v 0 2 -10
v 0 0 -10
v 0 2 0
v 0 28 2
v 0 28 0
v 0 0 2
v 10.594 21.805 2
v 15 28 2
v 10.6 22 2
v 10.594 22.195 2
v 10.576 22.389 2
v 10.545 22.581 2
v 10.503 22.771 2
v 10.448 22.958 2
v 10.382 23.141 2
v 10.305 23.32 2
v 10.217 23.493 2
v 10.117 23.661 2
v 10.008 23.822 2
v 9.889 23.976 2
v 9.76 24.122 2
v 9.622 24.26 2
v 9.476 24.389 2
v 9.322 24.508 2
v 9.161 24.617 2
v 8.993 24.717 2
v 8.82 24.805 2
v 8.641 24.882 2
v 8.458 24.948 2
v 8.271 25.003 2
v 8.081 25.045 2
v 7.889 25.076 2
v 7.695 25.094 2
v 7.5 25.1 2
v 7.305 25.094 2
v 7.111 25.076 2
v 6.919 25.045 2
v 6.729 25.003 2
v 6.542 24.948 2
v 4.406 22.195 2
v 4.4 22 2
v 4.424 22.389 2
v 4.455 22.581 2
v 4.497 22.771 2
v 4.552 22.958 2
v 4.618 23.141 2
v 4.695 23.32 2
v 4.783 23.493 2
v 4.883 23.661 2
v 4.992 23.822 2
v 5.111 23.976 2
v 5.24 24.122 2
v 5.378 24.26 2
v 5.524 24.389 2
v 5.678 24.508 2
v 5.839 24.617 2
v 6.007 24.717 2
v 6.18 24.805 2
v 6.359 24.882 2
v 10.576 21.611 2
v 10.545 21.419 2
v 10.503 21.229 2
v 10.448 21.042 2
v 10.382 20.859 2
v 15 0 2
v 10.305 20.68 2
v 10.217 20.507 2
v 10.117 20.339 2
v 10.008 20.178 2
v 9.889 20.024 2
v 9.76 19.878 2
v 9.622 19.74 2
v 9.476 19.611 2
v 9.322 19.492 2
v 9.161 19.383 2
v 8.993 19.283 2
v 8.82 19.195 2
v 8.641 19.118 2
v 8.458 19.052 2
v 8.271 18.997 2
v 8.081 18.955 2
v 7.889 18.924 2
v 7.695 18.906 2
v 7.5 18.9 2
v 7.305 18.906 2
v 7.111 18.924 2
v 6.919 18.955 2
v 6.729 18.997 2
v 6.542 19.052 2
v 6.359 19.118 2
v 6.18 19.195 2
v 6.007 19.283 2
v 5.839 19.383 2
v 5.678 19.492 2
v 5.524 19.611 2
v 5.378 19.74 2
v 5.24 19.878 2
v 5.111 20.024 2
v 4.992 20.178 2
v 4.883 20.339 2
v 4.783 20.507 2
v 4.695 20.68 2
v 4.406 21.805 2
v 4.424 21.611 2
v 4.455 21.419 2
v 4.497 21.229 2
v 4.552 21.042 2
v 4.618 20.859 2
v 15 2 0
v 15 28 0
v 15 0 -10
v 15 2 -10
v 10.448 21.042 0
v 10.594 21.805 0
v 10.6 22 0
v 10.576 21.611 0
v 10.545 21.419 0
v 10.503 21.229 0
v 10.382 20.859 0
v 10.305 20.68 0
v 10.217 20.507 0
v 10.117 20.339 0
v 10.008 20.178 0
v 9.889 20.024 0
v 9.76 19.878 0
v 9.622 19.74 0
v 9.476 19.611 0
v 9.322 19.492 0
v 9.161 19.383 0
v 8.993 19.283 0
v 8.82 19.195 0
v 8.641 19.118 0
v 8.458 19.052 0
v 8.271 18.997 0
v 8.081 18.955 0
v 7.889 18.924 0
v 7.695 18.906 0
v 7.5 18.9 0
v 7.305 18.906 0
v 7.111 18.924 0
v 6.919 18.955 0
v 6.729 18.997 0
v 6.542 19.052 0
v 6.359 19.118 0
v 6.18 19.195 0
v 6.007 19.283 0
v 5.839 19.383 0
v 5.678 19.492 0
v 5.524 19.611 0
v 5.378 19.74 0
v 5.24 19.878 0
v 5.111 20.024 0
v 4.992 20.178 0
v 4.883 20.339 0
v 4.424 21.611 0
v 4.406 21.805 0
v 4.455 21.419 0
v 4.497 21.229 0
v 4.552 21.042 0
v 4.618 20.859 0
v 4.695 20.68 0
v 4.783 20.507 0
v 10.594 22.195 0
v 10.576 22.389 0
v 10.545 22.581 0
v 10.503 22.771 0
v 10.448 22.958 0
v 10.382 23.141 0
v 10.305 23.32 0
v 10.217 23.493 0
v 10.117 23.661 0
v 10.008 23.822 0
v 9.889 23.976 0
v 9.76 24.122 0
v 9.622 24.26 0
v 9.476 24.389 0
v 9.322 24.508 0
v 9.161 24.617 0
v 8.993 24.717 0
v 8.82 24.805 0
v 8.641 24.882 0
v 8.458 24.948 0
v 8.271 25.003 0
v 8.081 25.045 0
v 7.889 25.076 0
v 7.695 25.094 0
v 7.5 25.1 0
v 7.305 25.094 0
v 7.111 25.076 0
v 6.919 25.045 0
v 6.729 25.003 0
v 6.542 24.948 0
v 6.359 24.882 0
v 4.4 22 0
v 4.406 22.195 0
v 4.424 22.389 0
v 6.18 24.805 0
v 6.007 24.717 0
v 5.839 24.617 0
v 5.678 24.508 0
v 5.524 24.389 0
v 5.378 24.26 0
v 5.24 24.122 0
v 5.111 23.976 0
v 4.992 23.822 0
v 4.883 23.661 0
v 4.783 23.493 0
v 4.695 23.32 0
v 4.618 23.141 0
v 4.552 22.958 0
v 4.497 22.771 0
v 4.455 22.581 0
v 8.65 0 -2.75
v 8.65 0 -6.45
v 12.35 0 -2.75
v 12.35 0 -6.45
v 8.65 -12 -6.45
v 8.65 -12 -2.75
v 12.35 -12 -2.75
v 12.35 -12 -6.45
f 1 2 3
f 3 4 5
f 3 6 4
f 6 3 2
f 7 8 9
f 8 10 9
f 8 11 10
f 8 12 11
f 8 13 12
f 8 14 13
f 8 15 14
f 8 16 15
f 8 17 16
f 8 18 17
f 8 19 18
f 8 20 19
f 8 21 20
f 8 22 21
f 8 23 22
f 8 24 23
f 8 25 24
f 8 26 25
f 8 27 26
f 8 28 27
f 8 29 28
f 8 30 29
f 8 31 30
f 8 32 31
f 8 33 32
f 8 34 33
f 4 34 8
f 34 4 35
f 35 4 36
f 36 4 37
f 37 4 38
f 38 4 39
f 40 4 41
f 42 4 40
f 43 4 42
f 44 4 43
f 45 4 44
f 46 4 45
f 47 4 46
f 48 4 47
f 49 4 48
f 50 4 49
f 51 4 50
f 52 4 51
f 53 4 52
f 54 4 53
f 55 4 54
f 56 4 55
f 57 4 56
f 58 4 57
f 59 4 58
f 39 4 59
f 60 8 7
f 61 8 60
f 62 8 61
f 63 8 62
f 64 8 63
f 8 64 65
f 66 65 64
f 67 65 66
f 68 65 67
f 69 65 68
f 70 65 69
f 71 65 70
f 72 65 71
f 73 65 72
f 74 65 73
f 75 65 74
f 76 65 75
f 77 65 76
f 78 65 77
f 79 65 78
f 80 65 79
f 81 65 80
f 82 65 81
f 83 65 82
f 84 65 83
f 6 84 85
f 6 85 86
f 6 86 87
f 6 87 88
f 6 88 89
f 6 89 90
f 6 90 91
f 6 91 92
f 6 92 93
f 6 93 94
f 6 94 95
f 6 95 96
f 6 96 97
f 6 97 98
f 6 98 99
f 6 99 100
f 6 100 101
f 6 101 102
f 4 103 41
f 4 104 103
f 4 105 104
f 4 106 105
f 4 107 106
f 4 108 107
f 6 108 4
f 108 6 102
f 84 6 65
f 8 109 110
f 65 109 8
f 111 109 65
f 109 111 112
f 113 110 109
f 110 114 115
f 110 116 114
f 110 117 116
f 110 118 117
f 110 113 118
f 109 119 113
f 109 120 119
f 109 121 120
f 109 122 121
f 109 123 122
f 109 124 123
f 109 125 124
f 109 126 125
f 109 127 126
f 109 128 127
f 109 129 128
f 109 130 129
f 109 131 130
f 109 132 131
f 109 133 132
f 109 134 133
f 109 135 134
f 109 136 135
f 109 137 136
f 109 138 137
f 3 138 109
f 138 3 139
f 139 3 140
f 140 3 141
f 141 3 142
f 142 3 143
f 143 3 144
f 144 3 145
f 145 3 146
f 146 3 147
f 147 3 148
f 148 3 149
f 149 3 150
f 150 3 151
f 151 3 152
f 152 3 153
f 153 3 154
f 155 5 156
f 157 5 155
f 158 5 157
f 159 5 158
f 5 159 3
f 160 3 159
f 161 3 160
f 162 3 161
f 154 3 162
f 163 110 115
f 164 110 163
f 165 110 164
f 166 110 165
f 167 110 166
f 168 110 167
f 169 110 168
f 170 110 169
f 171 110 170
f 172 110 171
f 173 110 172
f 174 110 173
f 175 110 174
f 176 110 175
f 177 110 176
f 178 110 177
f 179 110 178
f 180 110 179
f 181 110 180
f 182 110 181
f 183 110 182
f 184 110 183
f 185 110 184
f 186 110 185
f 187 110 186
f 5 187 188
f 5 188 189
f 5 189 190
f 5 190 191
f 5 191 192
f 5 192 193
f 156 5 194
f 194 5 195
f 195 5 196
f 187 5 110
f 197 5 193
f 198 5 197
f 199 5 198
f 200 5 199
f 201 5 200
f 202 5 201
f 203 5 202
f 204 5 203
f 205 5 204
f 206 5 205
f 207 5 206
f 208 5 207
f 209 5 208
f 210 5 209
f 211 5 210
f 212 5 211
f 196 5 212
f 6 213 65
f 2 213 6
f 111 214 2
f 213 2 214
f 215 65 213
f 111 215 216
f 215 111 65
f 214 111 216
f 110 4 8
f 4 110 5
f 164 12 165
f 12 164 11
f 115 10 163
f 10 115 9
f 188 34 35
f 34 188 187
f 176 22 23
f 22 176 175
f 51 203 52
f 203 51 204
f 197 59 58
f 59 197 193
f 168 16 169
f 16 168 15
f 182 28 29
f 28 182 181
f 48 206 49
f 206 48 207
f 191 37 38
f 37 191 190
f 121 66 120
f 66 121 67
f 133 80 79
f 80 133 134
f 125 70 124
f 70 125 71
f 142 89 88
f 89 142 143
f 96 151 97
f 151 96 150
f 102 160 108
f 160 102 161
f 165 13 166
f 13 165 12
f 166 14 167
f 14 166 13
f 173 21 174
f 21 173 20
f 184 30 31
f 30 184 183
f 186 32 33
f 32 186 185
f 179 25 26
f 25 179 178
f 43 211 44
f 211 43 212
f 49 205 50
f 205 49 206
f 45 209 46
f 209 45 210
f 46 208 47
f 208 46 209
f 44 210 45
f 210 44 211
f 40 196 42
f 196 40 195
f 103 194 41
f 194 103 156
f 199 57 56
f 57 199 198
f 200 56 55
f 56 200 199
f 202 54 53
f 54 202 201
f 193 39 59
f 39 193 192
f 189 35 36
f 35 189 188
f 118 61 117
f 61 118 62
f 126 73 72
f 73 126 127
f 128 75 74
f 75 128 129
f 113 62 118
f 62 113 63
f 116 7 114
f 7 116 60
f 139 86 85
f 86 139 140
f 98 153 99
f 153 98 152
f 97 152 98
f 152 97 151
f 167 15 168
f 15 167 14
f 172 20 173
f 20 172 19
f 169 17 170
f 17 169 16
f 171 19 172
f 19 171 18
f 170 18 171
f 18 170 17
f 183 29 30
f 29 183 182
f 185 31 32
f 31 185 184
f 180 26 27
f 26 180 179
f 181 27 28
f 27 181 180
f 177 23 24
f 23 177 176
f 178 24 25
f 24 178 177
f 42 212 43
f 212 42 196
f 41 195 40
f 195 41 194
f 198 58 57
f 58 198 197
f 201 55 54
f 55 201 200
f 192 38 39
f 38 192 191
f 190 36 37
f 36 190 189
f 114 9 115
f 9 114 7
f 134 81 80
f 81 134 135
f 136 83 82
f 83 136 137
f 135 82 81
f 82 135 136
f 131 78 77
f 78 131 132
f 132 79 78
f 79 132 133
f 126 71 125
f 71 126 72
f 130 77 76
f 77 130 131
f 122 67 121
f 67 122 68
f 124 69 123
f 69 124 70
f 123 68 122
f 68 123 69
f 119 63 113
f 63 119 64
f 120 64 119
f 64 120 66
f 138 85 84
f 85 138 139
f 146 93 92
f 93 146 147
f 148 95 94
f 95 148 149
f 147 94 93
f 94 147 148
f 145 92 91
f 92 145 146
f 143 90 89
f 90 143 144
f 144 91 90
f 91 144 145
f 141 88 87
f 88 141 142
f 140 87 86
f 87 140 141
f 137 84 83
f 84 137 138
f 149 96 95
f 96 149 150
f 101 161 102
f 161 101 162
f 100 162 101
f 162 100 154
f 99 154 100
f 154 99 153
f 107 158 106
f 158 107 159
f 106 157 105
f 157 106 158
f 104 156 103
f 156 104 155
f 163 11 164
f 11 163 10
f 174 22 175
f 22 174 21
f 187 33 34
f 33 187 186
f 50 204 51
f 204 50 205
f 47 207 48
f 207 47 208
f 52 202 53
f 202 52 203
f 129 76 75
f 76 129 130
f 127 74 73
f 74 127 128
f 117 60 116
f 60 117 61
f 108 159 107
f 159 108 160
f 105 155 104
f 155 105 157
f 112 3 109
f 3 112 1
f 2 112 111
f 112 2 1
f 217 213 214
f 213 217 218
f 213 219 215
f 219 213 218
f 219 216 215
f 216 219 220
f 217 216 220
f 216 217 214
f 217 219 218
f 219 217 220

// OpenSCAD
difference(){
    cube([15,25+3,2]);
    #translate([15/2,25+2-5,0])cylinder(2,6.2/2,6.2/2,$fn=100);
}

translate([0,0,-10])cube([15,2,10]);

k=17.25-19.50+16-11+3.7;
n=12;
translate([-3.7/2+15/2+3,-n,-k])cube([3.7,n,3.7]);
